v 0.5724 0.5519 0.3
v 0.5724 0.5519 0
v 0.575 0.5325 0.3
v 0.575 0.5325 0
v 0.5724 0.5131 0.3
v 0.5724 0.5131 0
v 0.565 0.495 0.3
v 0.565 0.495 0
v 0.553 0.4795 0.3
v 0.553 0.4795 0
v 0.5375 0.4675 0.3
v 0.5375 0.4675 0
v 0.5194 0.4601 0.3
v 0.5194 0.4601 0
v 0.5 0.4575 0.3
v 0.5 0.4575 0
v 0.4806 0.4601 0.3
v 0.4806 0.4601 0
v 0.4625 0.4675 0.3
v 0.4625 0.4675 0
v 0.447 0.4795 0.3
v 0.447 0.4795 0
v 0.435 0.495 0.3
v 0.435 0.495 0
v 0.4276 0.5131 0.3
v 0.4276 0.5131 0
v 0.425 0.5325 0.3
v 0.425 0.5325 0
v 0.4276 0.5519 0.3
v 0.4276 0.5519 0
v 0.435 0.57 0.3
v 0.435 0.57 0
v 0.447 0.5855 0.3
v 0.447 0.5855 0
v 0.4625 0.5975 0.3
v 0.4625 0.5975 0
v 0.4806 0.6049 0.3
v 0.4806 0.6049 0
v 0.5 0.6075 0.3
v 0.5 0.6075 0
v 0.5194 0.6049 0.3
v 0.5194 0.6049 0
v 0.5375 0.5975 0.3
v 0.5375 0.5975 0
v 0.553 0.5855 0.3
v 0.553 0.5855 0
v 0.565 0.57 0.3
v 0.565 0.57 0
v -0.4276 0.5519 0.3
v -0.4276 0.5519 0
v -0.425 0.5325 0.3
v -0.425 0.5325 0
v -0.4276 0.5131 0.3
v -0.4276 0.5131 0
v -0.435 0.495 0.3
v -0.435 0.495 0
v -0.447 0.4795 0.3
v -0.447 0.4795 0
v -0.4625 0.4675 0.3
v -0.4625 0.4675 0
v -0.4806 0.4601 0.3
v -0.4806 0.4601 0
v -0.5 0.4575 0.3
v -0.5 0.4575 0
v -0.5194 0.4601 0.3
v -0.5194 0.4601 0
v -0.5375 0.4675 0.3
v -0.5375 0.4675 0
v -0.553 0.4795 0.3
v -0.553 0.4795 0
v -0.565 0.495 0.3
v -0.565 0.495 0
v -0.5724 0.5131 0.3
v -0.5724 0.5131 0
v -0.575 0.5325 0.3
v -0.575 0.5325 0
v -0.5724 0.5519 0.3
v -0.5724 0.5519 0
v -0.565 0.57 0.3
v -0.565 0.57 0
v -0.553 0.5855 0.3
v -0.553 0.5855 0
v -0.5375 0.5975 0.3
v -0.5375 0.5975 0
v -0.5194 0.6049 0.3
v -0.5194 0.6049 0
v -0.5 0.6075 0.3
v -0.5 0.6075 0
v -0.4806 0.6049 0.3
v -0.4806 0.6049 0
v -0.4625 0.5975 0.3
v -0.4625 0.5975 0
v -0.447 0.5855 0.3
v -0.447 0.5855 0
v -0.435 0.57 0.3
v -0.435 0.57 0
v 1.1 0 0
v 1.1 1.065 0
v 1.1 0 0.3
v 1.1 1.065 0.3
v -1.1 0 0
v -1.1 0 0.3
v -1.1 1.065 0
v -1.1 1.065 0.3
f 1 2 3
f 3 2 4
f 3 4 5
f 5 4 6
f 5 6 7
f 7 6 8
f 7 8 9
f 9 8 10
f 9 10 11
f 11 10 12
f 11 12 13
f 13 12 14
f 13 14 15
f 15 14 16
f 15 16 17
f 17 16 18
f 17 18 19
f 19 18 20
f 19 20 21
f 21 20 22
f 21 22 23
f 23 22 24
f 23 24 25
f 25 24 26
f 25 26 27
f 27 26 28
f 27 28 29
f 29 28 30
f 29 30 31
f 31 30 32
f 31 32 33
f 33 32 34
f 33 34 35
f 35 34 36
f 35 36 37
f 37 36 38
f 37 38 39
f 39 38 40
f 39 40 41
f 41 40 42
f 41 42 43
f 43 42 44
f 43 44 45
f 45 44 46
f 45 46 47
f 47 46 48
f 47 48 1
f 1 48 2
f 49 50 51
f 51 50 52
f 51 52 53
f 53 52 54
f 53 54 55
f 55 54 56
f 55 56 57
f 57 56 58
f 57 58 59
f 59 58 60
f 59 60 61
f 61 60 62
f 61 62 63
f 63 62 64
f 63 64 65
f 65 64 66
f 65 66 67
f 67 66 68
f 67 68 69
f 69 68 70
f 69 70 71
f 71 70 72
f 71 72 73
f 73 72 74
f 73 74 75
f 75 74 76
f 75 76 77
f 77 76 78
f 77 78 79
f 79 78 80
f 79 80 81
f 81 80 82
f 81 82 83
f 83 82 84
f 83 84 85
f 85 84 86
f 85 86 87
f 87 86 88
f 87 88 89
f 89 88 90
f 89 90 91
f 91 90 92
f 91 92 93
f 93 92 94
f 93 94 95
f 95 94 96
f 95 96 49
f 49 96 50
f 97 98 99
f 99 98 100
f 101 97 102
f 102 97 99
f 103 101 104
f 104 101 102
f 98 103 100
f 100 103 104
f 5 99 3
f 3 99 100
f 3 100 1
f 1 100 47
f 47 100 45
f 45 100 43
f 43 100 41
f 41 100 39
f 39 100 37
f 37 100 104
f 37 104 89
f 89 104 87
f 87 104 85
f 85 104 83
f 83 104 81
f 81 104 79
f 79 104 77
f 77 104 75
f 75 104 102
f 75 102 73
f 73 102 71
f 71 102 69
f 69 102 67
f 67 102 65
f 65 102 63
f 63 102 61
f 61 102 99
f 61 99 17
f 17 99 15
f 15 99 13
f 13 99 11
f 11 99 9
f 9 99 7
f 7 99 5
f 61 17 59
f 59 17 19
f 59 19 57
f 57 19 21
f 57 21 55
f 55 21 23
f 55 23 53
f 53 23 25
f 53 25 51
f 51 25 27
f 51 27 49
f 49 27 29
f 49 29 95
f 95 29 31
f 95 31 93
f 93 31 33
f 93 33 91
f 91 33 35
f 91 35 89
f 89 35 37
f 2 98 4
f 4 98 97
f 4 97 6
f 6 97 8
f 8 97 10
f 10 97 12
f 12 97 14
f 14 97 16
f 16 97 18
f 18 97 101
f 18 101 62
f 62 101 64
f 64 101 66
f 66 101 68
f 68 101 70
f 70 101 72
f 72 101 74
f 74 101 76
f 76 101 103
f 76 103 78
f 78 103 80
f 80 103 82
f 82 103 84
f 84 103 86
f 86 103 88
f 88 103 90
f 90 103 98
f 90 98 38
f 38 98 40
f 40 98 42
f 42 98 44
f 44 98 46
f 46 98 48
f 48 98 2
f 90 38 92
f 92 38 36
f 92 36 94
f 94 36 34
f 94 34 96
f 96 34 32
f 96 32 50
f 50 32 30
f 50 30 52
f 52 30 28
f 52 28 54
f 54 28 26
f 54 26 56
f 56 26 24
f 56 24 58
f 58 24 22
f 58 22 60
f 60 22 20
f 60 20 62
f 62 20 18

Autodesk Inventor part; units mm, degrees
ref_plane "YZ Plane" through (0, 0, 0) normal (1, 0, 0) x (0, 1, 0)
ref_plane "XZ Plane" through (0, 0, 0) normal (0, 1, 0) x (-1, 0, 0)
ref_plane "XY Plane" through (0, 0, 0) normal (0, 0, 1) x (1, 0, 0)
sketch "Boceto1" plane through (0, 0, 0) normal (0, 0, 1) x (1, 0, 0)
  line L0 (0.1, 1.065) -> (1.1, 1.065)
  line L1 (1.1, 1.065) -> (1.1, 0)
  circle A0 centre (0.5, 0.5325) radius 0.075
  line L2 (0.1, 0) -> (7.6, 0)
  line L3 (0, 1.8248) -> (0, 0)
  line L4 (0, 1.065) -> (0.1, 1.065)
  line L5 (0.1, 0) -> (0, 0)
  line L6 (-0.1, 1.065) -> (-1.1, 1.065)
  line L7 (-1.1, 1.065) -> (-1.1, 0)
  circle A1 centre (-0.5, 0.5325) radius 0.075
  line L8 (-0.1, 0) -> (-7.6, 0)
  line L9 (0, 1.065) -> (-0.1, 1.065)
  line L10 (-0.1, 0) -> (0, 0)
  point P0 (0, 0)
extrude "Extrusión1" add sketch "Boceto1" along normal blind 0.3
properties part number "LearnbotUnion"
